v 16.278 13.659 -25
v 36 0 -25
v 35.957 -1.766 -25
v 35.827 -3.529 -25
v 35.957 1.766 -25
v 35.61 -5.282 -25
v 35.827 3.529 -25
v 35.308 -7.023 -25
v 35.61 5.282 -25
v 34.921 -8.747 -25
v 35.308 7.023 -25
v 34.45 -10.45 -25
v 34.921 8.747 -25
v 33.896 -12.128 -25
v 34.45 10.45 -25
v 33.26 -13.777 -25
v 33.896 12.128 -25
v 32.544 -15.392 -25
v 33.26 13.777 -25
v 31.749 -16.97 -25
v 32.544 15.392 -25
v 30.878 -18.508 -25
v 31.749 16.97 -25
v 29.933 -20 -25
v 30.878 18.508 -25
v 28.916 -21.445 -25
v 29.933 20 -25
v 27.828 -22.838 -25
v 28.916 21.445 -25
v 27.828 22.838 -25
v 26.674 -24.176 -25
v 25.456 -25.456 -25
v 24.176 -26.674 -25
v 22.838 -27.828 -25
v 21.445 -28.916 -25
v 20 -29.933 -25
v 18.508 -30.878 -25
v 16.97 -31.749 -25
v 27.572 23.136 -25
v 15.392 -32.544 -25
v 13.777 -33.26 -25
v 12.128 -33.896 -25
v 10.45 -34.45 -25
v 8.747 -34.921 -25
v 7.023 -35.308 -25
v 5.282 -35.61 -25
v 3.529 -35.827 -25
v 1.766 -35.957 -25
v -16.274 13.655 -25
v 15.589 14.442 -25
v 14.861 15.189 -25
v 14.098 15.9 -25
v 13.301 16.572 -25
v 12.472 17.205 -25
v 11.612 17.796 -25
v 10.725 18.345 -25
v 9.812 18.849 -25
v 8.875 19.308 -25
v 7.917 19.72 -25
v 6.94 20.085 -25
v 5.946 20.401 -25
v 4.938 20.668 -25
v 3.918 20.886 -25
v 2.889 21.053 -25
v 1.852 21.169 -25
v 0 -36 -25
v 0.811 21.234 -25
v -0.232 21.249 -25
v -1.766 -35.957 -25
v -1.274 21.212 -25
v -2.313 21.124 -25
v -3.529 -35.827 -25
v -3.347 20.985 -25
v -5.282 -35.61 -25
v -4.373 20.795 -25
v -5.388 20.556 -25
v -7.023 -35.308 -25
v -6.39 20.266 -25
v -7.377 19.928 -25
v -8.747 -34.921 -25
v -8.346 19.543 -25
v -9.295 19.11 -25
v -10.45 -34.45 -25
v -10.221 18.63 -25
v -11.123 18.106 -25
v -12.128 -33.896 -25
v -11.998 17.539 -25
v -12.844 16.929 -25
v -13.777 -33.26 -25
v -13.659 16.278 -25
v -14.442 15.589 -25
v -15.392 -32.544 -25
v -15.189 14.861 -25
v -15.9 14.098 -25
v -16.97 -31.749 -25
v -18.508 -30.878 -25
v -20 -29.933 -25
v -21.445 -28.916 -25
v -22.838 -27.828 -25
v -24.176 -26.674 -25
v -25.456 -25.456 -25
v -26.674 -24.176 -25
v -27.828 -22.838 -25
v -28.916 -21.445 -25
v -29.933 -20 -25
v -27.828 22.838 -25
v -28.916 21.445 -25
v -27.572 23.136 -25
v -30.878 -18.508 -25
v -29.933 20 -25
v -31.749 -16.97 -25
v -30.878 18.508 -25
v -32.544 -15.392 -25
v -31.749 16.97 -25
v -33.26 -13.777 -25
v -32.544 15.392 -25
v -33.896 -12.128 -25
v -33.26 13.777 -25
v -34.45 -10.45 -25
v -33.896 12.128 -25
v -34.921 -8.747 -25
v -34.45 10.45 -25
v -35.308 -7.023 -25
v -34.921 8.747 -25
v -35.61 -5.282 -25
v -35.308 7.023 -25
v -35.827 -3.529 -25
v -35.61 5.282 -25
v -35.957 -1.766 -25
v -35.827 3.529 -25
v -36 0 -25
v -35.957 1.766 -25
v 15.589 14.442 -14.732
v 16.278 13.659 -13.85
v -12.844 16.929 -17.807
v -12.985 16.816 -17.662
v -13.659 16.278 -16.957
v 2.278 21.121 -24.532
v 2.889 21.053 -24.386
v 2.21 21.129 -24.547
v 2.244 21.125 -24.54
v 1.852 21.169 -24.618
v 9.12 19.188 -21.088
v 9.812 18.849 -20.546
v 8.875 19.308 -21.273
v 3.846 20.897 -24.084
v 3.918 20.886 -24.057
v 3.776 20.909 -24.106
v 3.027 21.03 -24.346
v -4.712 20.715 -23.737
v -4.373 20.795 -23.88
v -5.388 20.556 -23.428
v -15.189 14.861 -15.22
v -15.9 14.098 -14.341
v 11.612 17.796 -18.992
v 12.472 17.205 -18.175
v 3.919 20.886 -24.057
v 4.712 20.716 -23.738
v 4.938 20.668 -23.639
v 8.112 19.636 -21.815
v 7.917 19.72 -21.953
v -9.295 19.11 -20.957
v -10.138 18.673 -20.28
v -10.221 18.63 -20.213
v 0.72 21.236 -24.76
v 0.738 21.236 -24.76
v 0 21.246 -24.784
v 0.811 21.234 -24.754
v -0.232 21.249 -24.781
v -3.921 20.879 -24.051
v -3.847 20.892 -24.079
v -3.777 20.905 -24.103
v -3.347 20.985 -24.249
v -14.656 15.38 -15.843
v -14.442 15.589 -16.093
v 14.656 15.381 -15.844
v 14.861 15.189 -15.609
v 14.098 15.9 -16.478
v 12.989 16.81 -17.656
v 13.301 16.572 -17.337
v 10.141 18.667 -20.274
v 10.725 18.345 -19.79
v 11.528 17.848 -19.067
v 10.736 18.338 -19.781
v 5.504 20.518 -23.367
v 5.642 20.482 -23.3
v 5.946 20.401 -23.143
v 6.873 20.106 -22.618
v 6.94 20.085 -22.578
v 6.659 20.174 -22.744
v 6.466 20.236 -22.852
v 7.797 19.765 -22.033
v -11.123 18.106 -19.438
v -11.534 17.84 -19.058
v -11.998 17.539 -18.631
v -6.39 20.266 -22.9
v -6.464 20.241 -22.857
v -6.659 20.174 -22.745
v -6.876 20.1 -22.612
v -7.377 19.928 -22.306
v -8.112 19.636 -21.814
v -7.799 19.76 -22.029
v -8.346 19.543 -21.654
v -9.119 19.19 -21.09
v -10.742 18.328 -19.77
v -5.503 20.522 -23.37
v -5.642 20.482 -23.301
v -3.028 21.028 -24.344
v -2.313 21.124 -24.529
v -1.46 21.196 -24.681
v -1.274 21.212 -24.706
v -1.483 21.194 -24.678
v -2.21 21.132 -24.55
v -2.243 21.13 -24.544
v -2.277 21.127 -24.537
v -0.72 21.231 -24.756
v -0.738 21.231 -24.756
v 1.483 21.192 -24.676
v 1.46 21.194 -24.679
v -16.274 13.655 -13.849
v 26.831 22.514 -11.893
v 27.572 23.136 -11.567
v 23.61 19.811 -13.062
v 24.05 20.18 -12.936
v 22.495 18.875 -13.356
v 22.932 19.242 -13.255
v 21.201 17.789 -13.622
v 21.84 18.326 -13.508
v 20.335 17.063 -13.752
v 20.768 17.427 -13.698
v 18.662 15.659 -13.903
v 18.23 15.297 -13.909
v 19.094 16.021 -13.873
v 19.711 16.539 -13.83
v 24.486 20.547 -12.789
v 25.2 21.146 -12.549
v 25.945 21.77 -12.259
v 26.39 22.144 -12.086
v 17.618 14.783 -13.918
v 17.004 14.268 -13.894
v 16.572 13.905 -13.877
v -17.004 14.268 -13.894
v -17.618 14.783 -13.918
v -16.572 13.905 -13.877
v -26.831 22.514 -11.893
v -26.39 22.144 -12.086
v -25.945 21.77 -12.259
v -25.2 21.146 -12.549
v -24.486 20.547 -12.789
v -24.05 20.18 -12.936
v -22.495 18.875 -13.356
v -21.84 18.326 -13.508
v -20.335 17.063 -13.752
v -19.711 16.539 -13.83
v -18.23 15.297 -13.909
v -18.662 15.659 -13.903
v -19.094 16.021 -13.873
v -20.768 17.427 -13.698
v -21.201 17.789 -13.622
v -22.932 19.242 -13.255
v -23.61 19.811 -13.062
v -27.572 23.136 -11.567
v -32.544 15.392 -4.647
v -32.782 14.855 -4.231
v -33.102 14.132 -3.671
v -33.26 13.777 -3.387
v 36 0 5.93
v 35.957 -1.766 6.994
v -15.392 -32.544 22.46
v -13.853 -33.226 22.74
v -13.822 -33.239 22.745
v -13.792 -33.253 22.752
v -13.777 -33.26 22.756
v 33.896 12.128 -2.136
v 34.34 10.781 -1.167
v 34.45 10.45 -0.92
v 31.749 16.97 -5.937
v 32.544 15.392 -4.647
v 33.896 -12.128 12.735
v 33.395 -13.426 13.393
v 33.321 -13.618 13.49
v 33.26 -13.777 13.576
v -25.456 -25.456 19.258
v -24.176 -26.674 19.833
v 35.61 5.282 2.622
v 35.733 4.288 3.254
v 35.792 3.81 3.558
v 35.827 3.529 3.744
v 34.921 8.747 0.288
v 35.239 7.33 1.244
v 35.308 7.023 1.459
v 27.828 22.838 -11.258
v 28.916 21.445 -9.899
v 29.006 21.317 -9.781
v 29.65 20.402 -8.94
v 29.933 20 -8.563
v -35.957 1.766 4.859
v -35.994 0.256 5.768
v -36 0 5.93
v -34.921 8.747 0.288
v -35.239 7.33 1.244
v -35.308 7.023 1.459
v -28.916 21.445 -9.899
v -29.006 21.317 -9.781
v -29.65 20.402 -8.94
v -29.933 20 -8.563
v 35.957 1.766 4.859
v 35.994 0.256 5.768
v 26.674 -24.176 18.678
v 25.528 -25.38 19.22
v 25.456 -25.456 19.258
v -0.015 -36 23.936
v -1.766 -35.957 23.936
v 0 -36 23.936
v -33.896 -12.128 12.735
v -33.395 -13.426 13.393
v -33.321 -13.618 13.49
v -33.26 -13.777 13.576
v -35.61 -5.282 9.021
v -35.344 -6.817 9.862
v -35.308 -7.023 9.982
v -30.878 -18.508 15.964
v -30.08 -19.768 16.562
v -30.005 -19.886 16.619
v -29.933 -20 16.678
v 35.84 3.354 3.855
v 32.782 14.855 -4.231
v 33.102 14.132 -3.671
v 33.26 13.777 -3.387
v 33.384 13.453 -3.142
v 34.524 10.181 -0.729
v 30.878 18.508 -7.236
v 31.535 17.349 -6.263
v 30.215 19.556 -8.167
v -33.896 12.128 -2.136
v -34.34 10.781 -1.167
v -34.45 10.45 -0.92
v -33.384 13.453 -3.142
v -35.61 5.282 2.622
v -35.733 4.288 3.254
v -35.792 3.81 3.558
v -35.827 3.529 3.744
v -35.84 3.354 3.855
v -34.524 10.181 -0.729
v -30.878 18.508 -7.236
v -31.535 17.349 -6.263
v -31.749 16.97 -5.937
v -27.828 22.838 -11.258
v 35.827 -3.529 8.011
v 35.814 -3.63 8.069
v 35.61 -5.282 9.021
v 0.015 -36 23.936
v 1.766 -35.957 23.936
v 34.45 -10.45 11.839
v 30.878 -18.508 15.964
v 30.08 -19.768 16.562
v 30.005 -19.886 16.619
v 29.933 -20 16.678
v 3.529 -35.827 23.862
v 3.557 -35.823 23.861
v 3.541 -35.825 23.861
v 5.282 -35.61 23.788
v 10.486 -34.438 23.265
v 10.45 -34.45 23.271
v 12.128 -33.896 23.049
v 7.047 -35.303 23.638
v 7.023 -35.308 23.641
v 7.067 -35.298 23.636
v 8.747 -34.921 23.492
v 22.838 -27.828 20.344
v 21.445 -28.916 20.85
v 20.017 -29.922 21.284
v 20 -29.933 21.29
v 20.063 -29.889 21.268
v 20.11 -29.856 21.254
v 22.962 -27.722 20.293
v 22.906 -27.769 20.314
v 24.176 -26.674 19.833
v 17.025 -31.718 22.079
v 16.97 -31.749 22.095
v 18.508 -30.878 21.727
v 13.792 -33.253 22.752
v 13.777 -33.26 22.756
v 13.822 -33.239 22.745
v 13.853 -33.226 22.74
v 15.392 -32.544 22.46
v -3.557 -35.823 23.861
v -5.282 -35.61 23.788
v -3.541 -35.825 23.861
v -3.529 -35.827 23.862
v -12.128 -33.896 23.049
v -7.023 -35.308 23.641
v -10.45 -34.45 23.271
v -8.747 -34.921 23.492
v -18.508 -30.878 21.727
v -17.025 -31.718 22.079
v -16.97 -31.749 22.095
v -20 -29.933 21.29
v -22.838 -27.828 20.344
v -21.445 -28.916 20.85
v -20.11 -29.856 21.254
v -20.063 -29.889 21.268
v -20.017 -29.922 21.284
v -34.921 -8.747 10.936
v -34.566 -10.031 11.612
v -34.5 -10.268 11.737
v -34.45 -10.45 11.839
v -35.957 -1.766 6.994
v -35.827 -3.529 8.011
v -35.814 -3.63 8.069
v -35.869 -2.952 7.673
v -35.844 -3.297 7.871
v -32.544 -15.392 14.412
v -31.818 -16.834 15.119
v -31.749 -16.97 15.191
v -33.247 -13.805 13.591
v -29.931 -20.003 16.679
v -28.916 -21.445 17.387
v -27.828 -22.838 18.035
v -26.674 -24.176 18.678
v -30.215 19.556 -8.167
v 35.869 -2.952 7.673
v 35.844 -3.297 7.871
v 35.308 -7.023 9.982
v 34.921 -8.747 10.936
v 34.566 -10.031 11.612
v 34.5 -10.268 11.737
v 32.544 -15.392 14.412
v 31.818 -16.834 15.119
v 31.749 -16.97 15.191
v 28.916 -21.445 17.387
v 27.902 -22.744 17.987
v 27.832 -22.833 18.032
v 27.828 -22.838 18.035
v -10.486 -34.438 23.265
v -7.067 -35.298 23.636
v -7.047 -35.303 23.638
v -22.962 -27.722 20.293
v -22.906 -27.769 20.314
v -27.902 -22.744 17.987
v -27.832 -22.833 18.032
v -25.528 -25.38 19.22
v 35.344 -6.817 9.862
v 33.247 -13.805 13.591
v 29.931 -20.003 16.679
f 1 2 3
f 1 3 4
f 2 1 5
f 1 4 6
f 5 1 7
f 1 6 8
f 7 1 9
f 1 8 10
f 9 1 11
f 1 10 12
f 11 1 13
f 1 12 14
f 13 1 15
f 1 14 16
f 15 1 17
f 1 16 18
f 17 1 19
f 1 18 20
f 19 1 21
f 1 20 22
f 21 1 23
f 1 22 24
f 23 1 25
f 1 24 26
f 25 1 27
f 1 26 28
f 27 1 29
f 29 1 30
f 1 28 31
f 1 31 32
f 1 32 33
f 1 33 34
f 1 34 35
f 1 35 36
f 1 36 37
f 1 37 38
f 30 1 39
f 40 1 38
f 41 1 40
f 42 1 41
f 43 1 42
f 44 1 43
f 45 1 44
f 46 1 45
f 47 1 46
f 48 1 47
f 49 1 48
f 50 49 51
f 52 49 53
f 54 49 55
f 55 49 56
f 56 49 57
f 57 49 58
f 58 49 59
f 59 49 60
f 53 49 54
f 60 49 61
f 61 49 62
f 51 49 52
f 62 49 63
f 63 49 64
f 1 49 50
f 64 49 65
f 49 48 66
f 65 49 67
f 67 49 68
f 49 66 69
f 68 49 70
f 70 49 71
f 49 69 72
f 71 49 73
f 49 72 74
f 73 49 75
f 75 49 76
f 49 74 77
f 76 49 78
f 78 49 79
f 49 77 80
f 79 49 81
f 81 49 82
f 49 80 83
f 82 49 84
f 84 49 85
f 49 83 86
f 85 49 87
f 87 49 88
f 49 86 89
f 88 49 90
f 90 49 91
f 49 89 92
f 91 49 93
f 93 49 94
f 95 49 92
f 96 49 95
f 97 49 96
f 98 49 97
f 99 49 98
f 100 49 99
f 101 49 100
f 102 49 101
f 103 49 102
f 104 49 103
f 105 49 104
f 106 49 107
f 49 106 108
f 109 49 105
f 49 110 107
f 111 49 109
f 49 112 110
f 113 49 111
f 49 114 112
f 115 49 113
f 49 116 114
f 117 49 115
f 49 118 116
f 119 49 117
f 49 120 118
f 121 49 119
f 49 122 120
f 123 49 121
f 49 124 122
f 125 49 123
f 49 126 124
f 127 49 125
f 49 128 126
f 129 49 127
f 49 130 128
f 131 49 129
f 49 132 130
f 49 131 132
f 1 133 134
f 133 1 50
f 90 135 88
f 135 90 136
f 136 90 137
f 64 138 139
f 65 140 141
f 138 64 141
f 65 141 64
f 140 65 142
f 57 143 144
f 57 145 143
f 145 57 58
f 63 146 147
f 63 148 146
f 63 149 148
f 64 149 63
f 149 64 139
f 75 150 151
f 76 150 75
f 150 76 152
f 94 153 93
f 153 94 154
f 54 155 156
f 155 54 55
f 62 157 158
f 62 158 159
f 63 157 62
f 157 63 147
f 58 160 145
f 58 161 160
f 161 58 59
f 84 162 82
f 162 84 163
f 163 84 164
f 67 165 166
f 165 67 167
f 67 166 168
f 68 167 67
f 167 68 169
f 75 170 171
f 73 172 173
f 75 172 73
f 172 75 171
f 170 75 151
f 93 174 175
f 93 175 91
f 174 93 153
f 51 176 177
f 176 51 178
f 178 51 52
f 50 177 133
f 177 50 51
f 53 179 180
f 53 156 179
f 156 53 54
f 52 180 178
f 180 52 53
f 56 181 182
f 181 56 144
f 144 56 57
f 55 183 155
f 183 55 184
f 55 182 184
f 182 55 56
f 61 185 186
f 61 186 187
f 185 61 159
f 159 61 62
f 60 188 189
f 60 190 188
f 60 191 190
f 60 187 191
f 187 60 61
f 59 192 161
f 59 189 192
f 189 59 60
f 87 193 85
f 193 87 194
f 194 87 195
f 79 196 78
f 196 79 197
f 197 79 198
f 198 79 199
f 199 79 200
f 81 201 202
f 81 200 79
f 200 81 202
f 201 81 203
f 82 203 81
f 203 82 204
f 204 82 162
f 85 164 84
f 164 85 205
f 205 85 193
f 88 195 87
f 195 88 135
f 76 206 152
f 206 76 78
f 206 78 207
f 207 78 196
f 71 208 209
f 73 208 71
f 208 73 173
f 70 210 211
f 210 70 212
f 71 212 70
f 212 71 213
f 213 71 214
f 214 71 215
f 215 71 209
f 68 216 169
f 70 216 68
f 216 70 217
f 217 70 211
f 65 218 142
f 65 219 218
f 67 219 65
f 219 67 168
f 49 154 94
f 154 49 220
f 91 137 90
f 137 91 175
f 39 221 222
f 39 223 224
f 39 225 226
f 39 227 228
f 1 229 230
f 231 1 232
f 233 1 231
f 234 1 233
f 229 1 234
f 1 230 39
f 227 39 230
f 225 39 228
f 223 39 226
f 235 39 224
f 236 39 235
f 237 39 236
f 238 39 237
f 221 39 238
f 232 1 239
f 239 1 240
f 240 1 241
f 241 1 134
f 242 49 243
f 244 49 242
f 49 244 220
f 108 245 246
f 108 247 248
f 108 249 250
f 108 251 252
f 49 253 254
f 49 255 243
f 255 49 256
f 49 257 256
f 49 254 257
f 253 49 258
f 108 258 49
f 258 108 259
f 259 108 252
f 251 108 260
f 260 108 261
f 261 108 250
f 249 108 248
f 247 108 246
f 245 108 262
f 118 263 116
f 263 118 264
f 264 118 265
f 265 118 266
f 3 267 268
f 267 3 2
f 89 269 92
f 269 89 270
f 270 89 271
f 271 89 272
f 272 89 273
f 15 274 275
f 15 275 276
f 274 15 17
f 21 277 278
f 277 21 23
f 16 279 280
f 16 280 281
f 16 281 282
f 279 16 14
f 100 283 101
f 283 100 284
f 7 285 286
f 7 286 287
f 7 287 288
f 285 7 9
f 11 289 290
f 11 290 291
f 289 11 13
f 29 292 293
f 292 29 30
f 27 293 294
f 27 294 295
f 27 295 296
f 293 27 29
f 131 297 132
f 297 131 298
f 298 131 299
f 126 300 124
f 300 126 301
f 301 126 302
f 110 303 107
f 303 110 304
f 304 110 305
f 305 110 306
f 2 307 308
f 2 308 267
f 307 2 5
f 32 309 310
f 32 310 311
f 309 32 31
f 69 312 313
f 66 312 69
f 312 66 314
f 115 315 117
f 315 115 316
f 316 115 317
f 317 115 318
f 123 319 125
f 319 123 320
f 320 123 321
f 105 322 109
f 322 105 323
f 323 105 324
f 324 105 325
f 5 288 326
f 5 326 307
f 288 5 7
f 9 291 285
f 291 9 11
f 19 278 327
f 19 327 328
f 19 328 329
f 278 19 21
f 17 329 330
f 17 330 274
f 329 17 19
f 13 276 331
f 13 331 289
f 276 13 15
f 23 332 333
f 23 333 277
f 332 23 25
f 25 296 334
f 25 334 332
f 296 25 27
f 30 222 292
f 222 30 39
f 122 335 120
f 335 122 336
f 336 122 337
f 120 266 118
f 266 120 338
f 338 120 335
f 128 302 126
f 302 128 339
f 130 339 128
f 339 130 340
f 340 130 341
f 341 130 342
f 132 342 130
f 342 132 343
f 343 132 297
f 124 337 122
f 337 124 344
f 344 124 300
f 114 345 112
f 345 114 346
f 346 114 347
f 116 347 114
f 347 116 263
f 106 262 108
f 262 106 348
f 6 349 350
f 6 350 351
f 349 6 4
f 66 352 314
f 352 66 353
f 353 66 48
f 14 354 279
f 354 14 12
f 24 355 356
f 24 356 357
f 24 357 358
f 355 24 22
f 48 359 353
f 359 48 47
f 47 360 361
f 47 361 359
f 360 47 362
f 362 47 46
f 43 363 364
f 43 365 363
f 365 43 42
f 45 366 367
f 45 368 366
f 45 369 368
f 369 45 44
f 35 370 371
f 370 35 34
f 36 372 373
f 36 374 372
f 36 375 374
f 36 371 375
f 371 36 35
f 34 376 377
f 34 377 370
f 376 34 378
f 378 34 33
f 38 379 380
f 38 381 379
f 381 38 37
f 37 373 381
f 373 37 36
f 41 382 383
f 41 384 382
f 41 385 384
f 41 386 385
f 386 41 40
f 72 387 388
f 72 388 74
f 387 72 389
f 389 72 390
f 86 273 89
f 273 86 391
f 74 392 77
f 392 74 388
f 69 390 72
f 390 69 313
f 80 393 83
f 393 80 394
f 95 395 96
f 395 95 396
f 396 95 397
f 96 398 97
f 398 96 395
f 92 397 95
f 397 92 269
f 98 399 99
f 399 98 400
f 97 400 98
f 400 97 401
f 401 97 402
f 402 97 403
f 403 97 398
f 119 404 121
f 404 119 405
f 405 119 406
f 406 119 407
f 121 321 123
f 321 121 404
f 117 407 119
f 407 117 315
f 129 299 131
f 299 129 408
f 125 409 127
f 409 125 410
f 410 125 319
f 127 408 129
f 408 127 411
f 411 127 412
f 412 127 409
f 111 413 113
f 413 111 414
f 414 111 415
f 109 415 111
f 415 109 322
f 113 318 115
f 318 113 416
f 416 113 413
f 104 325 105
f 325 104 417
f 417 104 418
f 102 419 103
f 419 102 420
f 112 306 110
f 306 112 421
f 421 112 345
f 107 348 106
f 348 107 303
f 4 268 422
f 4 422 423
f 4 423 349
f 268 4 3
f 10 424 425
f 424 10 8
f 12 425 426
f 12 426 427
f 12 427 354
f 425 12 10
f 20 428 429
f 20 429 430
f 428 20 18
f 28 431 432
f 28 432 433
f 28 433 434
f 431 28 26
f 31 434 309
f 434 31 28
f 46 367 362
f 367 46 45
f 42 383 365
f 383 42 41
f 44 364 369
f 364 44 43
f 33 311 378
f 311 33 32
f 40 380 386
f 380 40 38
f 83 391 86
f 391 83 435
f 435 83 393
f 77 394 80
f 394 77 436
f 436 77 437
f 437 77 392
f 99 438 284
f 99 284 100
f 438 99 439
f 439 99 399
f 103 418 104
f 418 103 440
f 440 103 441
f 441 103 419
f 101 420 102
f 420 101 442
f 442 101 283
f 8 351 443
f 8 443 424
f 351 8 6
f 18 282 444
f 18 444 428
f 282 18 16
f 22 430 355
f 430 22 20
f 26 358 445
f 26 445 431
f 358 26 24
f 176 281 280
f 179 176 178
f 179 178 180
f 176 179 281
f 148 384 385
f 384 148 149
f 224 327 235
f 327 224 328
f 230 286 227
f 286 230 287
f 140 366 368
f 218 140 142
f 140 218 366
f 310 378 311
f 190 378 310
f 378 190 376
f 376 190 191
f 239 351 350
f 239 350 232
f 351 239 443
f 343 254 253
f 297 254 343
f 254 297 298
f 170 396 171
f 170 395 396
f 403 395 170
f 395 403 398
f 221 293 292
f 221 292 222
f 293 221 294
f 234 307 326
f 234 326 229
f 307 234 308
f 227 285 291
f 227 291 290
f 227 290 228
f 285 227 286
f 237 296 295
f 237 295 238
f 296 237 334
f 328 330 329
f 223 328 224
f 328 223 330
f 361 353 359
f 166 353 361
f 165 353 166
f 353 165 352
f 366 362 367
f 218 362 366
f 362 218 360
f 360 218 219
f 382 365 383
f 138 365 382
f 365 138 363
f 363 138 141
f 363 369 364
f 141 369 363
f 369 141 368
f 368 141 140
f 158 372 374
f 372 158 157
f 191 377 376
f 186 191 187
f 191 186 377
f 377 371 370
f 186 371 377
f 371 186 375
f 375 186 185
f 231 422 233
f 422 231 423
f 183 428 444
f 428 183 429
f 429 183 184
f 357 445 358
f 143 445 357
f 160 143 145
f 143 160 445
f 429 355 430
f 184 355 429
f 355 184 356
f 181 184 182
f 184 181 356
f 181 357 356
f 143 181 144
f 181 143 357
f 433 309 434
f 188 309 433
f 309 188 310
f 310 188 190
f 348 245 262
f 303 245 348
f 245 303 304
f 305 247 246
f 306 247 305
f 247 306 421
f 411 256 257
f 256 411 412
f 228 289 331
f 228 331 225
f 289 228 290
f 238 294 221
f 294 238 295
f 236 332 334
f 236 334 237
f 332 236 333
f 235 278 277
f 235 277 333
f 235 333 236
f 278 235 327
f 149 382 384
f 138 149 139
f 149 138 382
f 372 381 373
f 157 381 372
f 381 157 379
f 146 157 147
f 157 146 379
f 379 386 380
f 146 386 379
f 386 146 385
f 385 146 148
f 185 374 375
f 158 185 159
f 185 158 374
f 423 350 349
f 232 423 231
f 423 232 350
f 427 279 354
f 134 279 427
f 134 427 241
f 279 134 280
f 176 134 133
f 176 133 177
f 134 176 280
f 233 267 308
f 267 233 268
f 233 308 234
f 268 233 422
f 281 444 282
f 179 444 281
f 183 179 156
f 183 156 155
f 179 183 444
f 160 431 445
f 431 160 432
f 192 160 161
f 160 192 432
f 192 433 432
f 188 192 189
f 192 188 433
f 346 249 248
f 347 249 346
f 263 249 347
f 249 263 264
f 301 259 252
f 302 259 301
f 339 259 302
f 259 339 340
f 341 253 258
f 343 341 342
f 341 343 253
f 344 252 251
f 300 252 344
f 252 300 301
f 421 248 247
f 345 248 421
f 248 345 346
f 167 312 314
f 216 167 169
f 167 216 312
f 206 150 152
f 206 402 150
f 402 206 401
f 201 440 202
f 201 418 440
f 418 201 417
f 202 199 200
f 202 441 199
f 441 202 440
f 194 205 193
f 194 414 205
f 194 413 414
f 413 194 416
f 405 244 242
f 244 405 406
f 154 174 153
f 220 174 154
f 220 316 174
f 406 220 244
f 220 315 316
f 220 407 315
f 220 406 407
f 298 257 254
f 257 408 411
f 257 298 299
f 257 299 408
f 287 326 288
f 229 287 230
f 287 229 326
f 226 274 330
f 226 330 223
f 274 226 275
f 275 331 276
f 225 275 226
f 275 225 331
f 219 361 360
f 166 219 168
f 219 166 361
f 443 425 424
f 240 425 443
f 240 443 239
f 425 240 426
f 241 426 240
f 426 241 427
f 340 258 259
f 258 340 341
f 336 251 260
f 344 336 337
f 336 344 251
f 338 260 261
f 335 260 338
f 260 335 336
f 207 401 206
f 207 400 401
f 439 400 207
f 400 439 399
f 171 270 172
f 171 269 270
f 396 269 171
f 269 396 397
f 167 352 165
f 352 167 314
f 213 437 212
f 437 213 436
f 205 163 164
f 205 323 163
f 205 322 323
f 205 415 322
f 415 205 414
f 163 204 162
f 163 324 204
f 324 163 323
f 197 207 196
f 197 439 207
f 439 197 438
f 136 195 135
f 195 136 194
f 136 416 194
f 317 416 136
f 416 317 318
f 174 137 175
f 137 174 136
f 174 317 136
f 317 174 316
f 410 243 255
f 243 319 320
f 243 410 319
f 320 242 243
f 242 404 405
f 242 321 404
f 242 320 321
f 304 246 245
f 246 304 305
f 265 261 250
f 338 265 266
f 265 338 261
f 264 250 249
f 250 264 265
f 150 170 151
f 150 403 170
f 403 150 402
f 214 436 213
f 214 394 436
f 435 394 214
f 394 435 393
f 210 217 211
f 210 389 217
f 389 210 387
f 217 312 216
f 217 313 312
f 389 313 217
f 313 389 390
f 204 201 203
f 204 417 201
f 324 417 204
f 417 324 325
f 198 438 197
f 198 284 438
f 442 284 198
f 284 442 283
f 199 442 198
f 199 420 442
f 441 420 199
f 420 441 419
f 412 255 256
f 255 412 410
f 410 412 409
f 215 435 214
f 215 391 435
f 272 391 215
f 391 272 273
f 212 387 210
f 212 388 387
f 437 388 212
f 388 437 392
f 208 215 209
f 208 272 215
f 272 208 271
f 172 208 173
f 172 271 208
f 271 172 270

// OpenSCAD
difference(){
  cylinder($fn= 128, d=72, h=50,center = true);
  // Ausschnitt Futterdurchlass
  rotate([0, 0, 40])intersection(){
    difference(){
      cylinder($fn= 128, d=74.5, h=50,center = true);
      cylinder($fn= 128, d=42.5, h=50,center = true);
    }
  
    polyhedron(
      points=[ [0, 0,  25], [75, 0,  25], [75*cos(100), 75*sin(100),  25],
               [0, 0, -25], [75, 0, -25], [75*cos(100), 75*sin(100), -25] ],
      faces=
              [[0,1,2], // Unterer Deckel
              [0,4,1], // Abdeckung x-Seite
              [0,3,4], // Abdeckung x-Seite
              [0,5,3], // Abdeckung schiefe Seite
              [0,2,5], // Abdeckung schiefe Seite
              [1,5,2], // Abdeckung Hypothenuse
              [1,4,5], // Abdeckung Hypothenuse
              [3,5,4]  // Oberer Deckel
              ]
    );
  }
  
  // Ausschnitt Gefälle
  translate([0, 72.5/2, 0])cylinder($fn= 128, d1=72 - 42.5, d2=74.5  + 72.5, h=50,center = true);
  
}
//// Anti Verrutschklemmen
//x = (42.5 + (72 - 42.5)/2 )/2;
//translate([x*cos(50), x*cos(50), -25 + 3/2])rotate([0, 0, -50])cube([2, (72-42.5)/2, 3], center = true);
